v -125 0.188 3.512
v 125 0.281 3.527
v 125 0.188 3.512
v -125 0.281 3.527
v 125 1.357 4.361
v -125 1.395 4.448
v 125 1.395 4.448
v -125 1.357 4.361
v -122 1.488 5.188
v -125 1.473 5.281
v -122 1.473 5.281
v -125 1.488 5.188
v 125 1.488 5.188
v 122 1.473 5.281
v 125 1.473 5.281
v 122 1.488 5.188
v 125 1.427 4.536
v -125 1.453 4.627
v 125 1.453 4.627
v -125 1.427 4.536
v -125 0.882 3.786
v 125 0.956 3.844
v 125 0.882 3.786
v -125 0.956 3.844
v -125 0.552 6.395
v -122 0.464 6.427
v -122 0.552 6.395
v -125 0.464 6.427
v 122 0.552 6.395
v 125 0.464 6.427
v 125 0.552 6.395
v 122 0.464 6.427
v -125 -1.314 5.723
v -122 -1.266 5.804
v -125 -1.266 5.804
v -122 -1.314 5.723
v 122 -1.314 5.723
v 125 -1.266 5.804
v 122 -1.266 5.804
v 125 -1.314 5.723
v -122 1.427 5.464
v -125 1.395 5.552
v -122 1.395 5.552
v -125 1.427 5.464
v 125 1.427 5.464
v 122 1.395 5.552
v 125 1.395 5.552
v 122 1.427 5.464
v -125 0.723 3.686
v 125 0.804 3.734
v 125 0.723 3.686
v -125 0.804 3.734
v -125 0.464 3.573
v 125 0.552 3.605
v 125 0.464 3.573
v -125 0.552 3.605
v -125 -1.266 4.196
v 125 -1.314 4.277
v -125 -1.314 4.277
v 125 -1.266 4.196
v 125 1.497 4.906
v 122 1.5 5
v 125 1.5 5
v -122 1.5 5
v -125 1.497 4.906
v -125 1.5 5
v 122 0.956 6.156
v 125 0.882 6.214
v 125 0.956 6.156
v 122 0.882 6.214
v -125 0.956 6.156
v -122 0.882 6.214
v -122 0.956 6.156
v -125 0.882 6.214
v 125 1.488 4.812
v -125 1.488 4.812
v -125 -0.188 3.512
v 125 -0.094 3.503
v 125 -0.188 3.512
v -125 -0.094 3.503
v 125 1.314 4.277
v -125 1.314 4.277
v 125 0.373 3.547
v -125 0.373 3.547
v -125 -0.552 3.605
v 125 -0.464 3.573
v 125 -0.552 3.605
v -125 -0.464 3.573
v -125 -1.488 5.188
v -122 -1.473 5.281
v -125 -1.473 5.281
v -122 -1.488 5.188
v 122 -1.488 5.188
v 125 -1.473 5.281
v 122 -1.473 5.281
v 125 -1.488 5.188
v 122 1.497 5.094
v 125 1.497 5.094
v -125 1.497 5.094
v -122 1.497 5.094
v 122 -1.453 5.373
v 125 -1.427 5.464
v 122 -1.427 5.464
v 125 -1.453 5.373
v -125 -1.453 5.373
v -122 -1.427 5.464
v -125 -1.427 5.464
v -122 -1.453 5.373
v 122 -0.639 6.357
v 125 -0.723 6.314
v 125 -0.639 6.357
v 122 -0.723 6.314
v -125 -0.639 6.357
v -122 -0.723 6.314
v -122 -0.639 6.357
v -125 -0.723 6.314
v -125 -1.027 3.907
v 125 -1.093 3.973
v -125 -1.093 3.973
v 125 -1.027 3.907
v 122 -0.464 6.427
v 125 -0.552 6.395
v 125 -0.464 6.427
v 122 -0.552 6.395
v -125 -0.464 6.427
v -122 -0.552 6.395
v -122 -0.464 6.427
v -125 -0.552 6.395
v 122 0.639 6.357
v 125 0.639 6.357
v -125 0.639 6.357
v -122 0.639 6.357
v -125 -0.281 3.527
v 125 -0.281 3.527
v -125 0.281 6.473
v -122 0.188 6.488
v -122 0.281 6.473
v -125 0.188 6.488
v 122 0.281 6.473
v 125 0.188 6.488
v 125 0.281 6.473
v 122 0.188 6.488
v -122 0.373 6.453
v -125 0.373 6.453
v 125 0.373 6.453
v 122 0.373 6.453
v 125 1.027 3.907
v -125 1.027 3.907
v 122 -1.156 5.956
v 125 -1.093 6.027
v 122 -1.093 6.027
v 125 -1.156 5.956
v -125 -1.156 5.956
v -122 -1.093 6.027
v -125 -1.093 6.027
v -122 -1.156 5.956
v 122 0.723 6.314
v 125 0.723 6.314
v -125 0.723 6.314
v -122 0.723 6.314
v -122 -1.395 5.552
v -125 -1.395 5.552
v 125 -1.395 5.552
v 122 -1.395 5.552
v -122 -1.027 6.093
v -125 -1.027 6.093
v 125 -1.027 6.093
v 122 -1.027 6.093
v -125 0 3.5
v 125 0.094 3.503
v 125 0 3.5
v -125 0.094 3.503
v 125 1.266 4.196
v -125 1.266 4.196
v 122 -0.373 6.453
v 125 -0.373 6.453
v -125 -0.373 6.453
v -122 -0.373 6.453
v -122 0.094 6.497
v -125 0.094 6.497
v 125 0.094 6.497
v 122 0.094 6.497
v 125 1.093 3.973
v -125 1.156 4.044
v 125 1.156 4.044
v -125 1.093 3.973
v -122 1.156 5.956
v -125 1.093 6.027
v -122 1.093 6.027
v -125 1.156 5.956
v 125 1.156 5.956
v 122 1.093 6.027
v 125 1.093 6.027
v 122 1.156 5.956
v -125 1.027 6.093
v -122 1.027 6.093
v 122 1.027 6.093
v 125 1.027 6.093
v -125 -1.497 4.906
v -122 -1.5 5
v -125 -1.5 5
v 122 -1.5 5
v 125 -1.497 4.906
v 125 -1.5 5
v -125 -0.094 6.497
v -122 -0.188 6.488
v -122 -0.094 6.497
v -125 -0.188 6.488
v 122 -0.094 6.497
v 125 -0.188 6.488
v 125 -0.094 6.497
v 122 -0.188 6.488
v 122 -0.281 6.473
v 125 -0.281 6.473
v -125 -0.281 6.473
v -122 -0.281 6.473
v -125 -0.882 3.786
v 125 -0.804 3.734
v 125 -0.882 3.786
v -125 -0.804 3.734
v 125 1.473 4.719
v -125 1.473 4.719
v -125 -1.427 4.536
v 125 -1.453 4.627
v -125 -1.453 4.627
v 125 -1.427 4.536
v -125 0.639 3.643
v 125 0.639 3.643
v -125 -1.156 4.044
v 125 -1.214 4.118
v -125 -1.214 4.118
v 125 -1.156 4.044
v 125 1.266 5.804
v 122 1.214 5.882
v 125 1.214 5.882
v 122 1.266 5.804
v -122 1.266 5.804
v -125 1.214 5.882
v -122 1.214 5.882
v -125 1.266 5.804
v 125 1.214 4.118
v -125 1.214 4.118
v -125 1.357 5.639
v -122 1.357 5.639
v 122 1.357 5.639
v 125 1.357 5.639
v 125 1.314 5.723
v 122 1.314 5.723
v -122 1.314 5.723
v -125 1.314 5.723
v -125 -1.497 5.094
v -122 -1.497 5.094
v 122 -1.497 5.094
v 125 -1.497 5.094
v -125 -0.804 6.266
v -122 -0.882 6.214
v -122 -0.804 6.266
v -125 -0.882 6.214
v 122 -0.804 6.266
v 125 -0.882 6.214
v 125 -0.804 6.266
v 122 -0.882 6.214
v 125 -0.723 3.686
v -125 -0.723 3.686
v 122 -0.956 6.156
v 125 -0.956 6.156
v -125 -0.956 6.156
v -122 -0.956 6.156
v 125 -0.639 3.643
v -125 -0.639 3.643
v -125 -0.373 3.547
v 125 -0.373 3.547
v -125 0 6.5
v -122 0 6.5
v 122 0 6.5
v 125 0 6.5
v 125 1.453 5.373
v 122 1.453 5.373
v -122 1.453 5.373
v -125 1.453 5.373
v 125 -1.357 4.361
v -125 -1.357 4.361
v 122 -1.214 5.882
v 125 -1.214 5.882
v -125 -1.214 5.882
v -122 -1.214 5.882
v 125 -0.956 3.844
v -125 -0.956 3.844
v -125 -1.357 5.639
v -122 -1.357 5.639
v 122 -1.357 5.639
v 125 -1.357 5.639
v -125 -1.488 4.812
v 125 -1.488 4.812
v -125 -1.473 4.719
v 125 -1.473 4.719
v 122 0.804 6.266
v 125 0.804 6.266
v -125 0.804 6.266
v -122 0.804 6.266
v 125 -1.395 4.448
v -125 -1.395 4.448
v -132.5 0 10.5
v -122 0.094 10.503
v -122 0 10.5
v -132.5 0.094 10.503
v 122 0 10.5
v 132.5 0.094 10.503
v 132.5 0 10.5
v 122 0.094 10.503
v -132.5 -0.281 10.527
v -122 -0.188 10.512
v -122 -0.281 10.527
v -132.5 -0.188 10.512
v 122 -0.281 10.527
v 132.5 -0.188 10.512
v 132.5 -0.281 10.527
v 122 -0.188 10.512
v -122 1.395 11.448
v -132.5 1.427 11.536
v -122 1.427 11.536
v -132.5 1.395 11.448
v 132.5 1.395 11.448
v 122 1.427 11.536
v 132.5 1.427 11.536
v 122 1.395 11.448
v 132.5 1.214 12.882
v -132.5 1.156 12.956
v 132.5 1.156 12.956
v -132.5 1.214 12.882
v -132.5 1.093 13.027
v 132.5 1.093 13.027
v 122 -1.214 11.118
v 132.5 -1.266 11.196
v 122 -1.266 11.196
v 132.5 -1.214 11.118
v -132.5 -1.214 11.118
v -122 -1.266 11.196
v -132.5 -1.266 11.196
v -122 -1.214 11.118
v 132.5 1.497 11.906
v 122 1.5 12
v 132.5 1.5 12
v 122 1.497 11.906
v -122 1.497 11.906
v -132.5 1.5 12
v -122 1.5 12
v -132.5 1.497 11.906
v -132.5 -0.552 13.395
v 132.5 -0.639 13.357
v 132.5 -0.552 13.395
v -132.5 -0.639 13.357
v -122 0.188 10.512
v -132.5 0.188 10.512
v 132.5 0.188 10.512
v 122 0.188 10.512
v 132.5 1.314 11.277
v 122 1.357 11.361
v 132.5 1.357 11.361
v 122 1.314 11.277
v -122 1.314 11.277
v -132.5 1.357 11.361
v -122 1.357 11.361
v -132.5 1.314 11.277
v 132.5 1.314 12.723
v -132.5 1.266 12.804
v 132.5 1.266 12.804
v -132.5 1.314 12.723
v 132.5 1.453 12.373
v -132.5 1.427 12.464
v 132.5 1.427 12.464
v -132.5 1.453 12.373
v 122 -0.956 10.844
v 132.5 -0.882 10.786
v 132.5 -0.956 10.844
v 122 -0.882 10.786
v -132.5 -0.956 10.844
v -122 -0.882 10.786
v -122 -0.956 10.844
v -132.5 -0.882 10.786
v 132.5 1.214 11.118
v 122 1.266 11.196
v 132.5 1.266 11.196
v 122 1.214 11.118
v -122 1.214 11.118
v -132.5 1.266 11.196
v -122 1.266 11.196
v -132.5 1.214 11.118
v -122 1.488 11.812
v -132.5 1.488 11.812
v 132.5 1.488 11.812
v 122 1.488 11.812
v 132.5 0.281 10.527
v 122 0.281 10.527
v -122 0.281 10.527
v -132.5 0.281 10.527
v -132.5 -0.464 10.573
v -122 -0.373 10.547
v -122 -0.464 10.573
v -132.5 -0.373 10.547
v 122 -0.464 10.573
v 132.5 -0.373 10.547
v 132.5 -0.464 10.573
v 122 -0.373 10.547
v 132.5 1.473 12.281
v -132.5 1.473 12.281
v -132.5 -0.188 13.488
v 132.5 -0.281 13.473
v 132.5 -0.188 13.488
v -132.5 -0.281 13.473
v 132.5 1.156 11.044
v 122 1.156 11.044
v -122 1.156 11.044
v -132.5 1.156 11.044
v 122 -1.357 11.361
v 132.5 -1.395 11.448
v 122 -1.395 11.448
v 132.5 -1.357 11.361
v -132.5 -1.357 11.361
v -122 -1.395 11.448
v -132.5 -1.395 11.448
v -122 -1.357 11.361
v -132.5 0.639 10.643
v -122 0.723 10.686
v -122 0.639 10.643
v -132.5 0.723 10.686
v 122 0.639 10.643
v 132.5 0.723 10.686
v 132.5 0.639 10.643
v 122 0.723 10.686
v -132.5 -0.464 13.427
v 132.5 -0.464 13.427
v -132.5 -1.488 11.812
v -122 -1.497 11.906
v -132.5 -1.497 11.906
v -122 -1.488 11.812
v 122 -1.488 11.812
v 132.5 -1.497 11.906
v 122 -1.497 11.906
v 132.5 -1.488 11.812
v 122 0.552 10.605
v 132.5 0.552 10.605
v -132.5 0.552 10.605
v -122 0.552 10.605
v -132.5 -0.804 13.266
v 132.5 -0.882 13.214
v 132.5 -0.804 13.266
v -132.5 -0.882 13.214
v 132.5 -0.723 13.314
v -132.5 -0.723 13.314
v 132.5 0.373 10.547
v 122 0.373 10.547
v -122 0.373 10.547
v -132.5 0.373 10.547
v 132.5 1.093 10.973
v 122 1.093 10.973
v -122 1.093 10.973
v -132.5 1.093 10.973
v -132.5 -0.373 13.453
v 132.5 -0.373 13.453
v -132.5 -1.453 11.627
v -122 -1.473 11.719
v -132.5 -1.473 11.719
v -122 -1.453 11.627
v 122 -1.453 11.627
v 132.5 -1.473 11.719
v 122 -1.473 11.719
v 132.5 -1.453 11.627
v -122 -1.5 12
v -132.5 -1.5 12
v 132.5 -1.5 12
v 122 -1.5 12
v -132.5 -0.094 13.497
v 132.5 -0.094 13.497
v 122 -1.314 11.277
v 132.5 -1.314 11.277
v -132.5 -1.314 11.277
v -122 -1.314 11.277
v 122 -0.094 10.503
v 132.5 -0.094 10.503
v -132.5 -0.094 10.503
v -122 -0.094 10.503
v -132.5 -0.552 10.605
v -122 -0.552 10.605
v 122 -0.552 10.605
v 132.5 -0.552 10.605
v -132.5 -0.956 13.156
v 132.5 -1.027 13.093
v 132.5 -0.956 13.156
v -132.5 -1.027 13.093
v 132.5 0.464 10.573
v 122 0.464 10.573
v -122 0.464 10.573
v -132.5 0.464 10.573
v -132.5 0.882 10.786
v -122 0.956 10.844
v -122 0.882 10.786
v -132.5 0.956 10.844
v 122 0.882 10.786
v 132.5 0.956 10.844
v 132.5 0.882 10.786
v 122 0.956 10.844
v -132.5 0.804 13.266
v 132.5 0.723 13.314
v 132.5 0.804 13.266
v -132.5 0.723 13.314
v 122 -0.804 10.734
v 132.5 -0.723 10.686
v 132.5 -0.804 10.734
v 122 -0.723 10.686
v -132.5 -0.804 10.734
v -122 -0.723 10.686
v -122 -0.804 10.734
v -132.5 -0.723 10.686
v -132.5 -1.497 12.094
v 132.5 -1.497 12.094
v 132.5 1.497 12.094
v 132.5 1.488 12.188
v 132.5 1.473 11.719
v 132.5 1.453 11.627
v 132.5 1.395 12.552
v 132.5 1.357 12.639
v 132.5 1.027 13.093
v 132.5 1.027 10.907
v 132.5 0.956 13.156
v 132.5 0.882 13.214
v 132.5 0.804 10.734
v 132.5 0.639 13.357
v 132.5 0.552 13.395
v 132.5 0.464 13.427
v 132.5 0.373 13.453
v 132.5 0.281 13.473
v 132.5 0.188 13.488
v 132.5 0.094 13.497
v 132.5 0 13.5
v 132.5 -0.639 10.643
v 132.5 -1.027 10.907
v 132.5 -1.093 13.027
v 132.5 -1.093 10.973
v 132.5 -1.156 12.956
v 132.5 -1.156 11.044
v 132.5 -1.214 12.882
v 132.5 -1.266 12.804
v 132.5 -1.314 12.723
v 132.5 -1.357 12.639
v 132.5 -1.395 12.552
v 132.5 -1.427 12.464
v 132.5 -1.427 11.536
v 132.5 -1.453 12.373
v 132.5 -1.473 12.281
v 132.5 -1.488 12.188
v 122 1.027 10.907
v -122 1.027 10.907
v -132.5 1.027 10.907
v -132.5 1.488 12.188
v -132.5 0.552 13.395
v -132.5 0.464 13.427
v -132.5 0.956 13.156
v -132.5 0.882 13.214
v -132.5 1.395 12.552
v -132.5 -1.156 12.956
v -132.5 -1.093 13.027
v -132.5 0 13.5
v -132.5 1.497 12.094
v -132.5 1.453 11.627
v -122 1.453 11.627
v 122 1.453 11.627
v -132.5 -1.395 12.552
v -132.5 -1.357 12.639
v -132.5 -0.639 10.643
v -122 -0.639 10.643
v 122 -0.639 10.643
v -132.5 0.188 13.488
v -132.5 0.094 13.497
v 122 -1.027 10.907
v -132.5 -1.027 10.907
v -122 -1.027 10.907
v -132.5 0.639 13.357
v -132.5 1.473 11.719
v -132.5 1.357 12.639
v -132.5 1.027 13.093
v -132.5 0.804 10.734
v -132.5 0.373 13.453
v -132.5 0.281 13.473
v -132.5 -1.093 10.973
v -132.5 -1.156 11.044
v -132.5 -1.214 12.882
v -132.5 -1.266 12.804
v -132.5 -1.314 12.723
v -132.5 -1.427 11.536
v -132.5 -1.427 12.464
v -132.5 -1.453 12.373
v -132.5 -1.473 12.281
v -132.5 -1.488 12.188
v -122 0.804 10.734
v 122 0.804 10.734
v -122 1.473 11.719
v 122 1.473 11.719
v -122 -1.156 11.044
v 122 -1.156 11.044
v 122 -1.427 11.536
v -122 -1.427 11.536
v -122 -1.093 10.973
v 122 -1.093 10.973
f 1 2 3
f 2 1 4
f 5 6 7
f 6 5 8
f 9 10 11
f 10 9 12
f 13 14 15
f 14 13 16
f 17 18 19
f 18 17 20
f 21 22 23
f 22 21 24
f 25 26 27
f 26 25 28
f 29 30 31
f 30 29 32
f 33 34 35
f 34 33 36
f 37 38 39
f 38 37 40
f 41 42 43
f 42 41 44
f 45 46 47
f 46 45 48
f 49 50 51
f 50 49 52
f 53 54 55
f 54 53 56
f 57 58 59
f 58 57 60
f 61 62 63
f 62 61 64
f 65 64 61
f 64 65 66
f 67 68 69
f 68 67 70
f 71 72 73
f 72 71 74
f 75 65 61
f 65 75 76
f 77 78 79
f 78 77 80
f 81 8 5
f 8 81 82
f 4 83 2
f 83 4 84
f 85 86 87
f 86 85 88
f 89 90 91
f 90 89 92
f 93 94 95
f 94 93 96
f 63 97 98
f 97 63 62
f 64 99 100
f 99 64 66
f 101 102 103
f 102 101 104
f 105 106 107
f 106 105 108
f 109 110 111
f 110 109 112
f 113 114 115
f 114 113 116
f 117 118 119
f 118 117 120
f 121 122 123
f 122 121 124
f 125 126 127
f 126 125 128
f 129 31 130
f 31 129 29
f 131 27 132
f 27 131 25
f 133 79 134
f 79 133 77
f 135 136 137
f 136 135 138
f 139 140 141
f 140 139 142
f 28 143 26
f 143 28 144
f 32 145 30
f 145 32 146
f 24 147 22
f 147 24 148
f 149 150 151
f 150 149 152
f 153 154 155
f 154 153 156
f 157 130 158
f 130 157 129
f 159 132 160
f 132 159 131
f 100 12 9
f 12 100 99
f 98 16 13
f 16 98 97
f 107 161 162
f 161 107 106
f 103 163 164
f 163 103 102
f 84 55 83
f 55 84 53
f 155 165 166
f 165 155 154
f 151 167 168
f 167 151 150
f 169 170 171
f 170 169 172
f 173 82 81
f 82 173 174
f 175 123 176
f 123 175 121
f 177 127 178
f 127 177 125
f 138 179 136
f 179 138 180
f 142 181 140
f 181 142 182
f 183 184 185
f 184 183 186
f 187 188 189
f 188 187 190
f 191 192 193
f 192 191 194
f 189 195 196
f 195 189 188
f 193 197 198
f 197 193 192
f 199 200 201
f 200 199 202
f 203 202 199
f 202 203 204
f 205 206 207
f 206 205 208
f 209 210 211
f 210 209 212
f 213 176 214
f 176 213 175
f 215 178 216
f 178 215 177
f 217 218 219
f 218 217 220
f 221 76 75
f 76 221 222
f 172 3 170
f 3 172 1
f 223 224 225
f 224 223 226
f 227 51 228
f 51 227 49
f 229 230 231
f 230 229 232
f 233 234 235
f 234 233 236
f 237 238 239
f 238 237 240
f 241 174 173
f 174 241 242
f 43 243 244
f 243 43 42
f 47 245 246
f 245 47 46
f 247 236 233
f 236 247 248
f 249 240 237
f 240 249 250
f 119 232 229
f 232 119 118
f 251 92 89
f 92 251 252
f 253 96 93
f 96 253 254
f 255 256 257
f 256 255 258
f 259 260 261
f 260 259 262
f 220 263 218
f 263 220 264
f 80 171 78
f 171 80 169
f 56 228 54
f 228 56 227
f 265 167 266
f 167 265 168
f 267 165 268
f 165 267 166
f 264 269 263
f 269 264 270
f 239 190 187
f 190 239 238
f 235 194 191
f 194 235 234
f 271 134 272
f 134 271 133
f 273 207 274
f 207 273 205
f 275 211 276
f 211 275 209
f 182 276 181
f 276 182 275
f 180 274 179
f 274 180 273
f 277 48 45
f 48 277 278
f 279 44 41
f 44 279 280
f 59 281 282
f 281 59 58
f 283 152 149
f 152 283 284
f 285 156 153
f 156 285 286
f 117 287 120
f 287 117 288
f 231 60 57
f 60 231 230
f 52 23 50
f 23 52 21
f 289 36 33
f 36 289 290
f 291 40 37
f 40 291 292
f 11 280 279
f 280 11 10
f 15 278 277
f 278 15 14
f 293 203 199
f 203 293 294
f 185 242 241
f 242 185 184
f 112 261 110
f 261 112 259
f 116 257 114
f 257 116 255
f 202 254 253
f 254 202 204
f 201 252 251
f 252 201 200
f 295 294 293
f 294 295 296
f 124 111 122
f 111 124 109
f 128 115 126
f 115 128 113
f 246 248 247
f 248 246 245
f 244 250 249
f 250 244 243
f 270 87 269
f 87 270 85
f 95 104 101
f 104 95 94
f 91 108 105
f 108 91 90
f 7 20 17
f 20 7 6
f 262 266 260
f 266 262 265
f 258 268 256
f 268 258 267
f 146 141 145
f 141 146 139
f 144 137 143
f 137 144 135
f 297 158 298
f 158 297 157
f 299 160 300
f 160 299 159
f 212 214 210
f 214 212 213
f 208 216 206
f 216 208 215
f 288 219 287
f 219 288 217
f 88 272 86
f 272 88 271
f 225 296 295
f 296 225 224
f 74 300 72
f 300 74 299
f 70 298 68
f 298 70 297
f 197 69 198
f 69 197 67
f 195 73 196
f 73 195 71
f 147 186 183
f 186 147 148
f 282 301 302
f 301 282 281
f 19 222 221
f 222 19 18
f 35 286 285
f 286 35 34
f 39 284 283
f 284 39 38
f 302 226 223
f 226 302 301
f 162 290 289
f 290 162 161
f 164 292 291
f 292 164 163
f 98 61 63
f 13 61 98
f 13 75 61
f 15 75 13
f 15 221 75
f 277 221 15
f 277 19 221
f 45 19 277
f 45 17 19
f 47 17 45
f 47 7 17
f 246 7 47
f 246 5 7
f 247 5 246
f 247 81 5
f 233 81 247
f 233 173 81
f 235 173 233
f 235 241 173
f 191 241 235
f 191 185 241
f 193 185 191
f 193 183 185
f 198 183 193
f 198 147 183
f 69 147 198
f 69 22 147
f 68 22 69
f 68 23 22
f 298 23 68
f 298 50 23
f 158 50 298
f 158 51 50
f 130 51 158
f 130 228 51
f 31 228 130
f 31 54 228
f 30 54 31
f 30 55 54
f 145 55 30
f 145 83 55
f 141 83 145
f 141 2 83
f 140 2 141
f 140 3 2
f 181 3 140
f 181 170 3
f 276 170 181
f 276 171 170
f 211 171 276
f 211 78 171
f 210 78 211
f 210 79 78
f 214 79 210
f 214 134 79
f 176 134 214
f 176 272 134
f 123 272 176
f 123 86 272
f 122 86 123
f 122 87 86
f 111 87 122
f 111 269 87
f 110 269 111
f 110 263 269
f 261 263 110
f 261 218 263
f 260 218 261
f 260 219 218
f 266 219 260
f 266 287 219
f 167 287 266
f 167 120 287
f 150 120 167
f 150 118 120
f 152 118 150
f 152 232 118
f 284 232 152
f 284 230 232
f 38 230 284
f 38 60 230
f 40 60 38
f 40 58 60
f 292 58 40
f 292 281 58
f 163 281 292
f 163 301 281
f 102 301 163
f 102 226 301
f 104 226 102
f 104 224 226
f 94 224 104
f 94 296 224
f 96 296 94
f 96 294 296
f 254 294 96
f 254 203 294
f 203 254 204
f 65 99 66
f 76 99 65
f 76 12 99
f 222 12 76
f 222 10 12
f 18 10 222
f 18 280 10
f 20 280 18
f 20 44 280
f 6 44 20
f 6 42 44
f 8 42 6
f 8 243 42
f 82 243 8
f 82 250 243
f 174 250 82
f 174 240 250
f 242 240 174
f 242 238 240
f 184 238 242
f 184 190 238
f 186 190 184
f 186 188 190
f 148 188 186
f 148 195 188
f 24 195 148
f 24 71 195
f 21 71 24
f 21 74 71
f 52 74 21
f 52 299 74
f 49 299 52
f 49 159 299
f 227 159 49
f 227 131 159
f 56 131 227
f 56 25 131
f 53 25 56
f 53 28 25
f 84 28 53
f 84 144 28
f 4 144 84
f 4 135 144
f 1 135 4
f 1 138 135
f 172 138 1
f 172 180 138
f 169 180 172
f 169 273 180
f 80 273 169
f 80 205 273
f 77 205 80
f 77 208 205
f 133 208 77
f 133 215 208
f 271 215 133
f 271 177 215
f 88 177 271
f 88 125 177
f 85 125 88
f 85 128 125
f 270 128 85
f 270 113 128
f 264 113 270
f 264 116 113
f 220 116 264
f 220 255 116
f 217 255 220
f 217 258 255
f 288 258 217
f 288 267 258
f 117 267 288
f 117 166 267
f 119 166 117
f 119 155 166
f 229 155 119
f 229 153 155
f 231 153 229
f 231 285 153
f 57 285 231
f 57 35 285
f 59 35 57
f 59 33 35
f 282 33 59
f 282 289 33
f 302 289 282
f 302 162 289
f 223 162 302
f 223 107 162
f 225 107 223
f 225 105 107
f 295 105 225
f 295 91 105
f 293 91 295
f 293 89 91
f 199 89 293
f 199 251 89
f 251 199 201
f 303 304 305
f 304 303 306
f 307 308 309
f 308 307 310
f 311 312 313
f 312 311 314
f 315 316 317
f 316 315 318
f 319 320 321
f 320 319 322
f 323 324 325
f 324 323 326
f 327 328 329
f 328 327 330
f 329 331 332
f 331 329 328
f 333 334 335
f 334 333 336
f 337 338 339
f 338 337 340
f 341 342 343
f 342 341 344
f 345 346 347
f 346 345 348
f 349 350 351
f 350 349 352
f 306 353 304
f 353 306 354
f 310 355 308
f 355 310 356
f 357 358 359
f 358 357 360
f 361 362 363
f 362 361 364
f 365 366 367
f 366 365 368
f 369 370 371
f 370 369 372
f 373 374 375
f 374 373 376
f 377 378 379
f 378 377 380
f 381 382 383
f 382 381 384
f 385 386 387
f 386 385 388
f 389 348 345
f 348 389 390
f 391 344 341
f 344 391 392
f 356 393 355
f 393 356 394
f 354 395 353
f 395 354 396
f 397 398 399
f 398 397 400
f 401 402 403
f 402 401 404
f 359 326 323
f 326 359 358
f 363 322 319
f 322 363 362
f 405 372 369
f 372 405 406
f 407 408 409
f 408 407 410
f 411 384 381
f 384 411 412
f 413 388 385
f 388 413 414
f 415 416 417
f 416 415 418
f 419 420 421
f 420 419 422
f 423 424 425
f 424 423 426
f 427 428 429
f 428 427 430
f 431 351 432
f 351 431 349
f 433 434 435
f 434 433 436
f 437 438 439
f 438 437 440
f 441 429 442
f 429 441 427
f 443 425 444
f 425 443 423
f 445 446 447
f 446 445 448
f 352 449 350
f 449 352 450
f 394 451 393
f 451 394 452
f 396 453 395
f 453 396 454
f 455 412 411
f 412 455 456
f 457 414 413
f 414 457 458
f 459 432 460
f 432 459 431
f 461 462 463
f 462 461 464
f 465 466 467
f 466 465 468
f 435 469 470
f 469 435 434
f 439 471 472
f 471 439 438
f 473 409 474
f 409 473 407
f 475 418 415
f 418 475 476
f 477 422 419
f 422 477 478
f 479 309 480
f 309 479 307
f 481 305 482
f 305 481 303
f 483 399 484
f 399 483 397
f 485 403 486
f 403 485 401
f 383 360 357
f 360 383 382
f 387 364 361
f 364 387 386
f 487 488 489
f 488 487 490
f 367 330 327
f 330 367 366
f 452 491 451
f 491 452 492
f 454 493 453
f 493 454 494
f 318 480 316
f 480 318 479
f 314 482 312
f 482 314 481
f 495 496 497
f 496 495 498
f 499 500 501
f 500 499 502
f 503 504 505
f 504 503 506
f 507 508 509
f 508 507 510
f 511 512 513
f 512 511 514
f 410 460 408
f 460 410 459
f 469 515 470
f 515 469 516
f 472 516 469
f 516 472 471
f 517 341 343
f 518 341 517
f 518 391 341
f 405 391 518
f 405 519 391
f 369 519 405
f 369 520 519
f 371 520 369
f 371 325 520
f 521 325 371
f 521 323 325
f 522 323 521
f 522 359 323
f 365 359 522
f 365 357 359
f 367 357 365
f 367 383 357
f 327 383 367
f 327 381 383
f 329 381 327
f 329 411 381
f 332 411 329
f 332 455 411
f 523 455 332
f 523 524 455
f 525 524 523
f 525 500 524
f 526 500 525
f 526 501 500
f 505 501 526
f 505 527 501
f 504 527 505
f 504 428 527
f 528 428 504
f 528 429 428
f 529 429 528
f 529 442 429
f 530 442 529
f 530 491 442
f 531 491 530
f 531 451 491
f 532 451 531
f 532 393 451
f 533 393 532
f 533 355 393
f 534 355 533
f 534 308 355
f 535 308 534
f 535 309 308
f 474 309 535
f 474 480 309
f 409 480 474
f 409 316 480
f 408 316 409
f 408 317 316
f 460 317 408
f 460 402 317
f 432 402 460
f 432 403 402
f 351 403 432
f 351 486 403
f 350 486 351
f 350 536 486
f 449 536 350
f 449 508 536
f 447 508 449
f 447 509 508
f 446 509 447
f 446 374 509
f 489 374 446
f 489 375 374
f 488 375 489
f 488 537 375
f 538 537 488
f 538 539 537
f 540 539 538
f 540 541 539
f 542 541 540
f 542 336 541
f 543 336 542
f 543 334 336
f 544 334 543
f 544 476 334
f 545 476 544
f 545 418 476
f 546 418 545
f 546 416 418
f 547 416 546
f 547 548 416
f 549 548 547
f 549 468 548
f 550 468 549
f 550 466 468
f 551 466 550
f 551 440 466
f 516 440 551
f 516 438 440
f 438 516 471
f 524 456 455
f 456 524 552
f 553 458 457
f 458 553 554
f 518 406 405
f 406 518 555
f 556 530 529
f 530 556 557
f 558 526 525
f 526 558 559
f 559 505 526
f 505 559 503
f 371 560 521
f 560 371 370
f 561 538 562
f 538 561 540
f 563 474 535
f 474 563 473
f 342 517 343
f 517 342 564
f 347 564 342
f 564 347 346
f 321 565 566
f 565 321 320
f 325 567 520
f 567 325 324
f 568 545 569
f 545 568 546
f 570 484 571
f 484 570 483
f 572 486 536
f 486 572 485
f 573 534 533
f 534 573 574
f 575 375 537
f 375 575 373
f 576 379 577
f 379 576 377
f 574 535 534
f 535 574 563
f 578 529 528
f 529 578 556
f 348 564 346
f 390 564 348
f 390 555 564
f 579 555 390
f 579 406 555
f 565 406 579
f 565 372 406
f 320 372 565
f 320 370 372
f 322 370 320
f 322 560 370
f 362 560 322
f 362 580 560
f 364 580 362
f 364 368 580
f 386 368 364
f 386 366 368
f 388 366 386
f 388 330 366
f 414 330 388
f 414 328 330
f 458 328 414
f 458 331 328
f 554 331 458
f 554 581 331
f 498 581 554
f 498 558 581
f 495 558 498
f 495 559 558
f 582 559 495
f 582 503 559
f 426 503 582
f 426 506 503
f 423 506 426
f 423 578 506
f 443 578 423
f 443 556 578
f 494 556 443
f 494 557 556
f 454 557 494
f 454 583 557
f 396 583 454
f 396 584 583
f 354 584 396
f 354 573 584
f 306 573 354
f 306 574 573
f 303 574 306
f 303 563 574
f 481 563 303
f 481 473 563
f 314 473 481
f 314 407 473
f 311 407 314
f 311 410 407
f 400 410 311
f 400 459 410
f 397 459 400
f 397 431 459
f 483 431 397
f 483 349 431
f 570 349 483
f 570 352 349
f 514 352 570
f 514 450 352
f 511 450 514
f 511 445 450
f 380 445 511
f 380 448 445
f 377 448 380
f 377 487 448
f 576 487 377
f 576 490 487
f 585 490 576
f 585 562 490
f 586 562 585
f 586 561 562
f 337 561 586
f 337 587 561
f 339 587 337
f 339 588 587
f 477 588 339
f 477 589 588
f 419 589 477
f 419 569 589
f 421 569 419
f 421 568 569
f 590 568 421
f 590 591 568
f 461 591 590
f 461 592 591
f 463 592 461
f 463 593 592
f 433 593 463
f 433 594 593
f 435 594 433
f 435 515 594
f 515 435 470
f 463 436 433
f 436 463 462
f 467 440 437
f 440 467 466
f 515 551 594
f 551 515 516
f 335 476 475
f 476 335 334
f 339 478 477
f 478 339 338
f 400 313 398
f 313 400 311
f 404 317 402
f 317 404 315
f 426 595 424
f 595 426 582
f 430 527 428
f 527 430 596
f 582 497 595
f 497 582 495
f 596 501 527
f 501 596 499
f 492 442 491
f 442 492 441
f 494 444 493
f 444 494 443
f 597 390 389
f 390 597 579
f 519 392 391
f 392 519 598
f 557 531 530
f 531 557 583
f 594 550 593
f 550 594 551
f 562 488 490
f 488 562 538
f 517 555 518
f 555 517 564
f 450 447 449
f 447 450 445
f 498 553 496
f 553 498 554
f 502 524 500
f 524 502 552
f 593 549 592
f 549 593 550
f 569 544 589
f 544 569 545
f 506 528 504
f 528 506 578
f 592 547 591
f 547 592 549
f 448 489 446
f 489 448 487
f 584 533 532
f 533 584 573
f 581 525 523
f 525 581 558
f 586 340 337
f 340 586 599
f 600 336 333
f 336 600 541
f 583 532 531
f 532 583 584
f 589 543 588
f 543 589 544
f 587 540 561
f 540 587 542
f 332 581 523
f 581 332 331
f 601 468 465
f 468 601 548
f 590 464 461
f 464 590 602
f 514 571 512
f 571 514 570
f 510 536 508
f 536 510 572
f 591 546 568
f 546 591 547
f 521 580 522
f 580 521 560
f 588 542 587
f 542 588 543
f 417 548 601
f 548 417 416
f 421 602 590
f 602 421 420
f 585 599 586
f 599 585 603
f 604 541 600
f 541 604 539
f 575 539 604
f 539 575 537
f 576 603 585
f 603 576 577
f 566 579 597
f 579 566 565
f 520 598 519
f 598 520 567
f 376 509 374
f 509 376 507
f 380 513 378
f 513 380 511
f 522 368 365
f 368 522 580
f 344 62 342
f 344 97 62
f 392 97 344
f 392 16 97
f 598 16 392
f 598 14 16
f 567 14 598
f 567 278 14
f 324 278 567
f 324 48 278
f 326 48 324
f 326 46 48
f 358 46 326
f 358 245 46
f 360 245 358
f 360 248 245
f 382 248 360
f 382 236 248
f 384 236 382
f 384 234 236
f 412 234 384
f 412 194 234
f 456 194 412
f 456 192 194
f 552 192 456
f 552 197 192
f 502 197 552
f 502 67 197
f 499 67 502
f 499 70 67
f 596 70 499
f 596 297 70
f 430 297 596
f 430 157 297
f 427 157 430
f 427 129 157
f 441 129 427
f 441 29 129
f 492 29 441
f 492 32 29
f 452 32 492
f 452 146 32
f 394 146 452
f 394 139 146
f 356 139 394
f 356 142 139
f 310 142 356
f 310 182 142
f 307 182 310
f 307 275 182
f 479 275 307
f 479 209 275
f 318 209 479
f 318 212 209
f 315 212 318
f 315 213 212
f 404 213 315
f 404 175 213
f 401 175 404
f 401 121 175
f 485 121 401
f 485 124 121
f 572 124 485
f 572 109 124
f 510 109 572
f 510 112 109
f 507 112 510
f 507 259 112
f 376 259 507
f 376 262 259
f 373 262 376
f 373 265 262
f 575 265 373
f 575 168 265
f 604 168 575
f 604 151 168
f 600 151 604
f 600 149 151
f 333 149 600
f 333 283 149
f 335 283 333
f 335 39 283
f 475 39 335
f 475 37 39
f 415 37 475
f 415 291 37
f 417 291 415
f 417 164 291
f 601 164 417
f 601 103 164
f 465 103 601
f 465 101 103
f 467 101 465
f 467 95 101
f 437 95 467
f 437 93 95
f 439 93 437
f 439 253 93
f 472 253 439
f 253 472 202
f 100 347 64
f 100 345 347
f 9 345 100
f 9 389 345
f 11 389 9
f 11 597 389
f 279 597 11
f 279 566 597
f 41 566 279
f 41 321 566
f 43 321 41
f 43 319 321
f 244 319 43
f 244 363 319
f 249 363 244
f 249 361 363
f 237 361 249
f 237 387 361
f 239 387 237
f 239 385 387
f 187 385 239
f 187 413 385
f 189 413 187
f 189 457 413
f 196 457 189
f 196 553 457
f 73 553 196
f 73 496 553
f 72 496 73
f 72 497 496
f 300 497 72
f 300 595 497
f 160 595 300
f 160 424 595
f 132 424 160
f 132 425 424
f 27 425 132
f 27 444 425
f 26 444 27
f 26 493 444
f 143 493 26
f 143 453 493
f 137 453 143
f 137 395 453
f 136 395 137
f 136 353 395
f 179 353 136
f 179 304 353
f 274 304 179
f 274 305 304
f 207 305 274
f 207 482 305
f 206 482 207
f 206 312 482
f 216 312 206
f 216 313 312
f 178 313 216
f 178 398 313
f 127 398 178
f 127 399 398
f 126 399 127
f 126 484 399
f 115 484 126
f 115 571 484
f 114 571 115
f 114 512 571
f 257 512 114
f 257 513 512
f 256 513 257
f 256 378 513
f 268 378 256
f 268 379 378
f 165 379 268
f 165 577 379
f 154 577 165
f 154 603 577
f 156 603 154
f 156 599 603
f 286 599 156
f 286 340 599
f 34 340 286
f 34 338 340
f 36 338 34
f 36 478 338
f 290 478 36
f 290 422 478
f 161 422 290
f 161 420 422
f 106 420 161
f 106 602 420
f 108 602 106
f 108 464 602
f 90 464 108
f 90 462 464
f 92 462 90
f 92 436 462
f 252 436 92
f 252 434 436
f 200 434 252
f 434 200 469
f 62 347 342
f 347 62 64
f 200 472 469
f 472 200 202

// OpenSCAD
// file: ../common/hex_nut.scad
// 1.5^2 + y^2 = 3^2
// sqrt(3^2 - 1.5^2)
//       30
//    /   |
// 60  - 90
// cos(30) = x / 3
// x = 3 cos(30)
module hex(side_length=4) {
  points = [[0,0], [side_length, 0], [side_length / 2, side_length * cos(30)]];
  for (i=[0:1:5]) {
    rotate([0,0,i * 60]) polygon(points);
  }
}

module hex_nut(side_length=3, height=2) {
    linear_extrude(height=height) hex(side_length);

}
// file: ../common/smoothed_edge.scad
module smoothed_edge(radius=1.5, height=64) {
  difference() {
    difference() {
      color([1, 0, 0]) cylinder(h=height, r=radius);
      translate([-radius, 0, 0]) {
        color([0, 1, 0]) cube([radius * 2, radius, height]);
      }
    }

    translate([0, -radius, 0]) {
      color([0, 1, 0]) cube([radius, radius * 2, height]);
    }
  }
}
// file: ../common/smoothed_corner.scad
$fn=200;
module smoothed_corner(radius=5) {
  difference() {
    sphere(radius);
    union() {
      translate([0,-5,-5]) {
        cube([5,10,10]);
      }

      translate([-10,0,-5]) {
        cube([10, 10, 10]);
      }

      translate([-5,-5,0]) {
        cube([10,10,10]);
      }
    }

  }
}

smoothed_corner();
// file: ../common/nut.scad
// 1.5^2 + y^2 = 3^2
// sqrt(3^2 - 1.5^2)
//       30
//    /   |
// 60  - 90
// cos(30) = x / 3
// x = 3 cos(30)
module hex(side_length=3) {
  points = [[0,0], [side_length, 0], [side_length / 2, side_length * cos(30)]];
  for (i=[0:1:5]) {
    rotate([0,0,i * 60]) polygon(points);
  }
}

module hex_nut(side_length=3, height=2) {
    linear_extrude(height=height) hex(side_length);
}

module square_nut(side_length=5, height=2, _offset=0) {
    cube([5 + _offset,5,2]);
}
// file: ../common/screw.scad
$fn=100;

module screw(screw_head_radius=3, screw_head_height=3, threaded_radius=1.5, threaded_height=10) {
  // screw head
  cylinder(h=screw_head_height, r=screw_head_radius);

  translate([0, 0, screw_head_height]) {
    cylinder(h=threaded_height, r=threaded_radius);
  }
}

// m3x10

screw(screw_head_radius=3, screw_head_height=3, threaded_radius=1.5, threaded_height=10);
// file: ../cr_boxes/handle.scad
use <../common/smoothed_cube.scad>
use <../common/screw_with_nut.scad>

$fn = 100;
x = 40.2;
y = 25.4;
z = 5;
h = 127;

function get_x_handle() = x;
threaded_height = 8;


module top() {
  translate([-x / 2 ,-y / 2,-z / 2]) {
    smoothed_cube(x=x, y = y, z=z);
  }
}

module screw_holder(x=5, y=y, z=y, radius=5) {
  translate([-x / 2 ,-y / 2,-z / 2]) {
    smoothed_cube(
      x=x, y = y, z=z,
      radius_3=radius,
      radius_7=radius,
      edge_2_3_radius=radius,
      edge_3_7_radius=radius,
      edge_3_4_radius=radius,
      edge_6_7_radius=radius,
      edge_7_8_radius=radius
    );
  }
}

module handle(screws_only=false) {
  if (screws_only) {
    screws_for_handle();
  } else {

    cylinder(h=h, r=25.4 / 2, center=true);
    difference() {
      union() {

        translate([-x,0,-h / 2 - 8]) {
          screw_holder();
        }

        mirror([0,0,1])
          translate([-x,0,-h / 2 - 8]) {
            screw_holder();
          }

        translate([-x / 2,0, h / 2 - z / 2]) {
          top();
        }

        mirror([0,0,1])
          translate([-x / 2,0, h / 2 - z / 2]) {
            top();
          }
      }
      screws_for_handle();
    }
  }
}

module screws_for_handle() {
  screw_handle();
  mirror([0,0,1])
    screw_handle();
}

module screw_handle(screw_offset=5) {
  translate([-x + threaded_height - screw_offset,0,h / 2 + y /2  -2]) {
    color([1,0,0])
      rotate([0,-90,0])
      screw_with_nut(threaded_height=threaded_height);
  }
}

handle();
// file: ../cr_boxes/corner.scad
use <builder.scad>
use <row_fan.scad>

filter_y = filter_dim()[1];
fan_size = get_fan_size();
depth = get_depth();
corner_z = get_corner_z();



module corner() {
  difference() {

    // translate([-depth, -(filter_y * 2 + fan_size) / 2, 0]) {
    union() {

      cube([depth,filter_y * 2 + fan_size,corner_z], center=true);

      mirror([0,1,0])
      translate([(get_spacing_x() + get_fan_size()) / 2 + 0.5,0, -corner_z / 2 + depth / 2]) {
        cylinder_cube_screw(cyl=false, screw=false, cube_support=true);
      }

      // cylinder 2
      translate([get_spacing_x() - 0.5,0,0]) {
        translate([(get_spacing_x() + get_fan_size()) / 2 + 0.5,0, -corner_z / 2 + depth / 2]) {
          cylinder_cube_screw(cyl=true, screw=false, cube_support=false);
        }
      }

      // cylinder 3 top
      translate([22,0,40]) {
        rotate([0,90,0])
          mirror([0,1,0])
          translate([get_spacing_x() - 0.5,0,0]) {
            translate([(get_spacing_x() + get_fan_size()) / 2 + 0.5,0, -corner_z / 2 + depth / 2]) {
              cylinder_cube_screw(cyl=true, screw=false, cube_support=false);
            }
          }
      }

      // cube top
    }
    union() {


      // cylinder screw hole 1
      mirror([0,1,0])
        translate([(get_spacing_x() + get_fan_size()) / 2 + 0.5,0, -corner_z / 2 + depth / 2]) {
          cylinder_cube_screw(cyl=true, screw=true, cube_support=false);
        }

      // cylinder 2 screw hole
      translate([get_spacing_x() - 0.5,0,0]) {
        translate([(get_spacing_x() + get_fan_size()) / 2 + 0.5,0, -corner_z / 2 + depth / 2]) {
          cylinder_cube_screw(cyl=false, screw=true, cube_support=false);
        }
      }

      // cylinder 3 screw hole
      translate([22,0,40]) {
        rotate([0,90,0])
          mirror([0,1,0])
          translate([get_spacing_x() - 0.5,0,0]) {
            translate([(get_spacing_x() + get_fan_size()) / 2 + 0.5,0, -corner_z / 2 + depth / 2]) {
              cylinder_cube_screw(cyl=false, screw=true, cube_support=false);
            }
          }
      }

      // cylinder 4 screw hole and cylinder
      translate([22,0,23]) {
        rotate([0,90,0])
          translate([(get_spacing_x() + get_fan_size()) / 2 + 0.5,0, -corner_z / 2 + depth / 2]) {
            cylinder_cube_screw(cyl=true, screw=true, cube_support=false);
          }
      }
    }
  }
}

corner();
// file: ../common/fan.scad
use <hex_nut.scad>
$fn = 100;

// | 70
// |
// |
// |
// |        62.5
// -------------

module fan(
    radius,
    depth,
    screw_radius,
    multiplier = 70 - 7.5
) {
  _distance_to_middle_of_circle_x = radius == 60 ? 52.5 : multiplier / 70 * radius;
  _distance_to_middle_of_circle_y = radius == 60 ? 52.5 : multiplier / 70 * radius;

  linear_extrude(height=depth) circle(radius);
  // top right corner
  translate([_distance_to_middle_of_circle_x, _distance_to_middle_of_circle_y, 0]) {
    linear_extrude(height=depth) circle(screw_radius);
  }

  // bottom left corner
  translate([-_distance_to_middle_of_circle_x, -_distance_to_middle_of_circle_y, 0]) {
    linear_extrude(height=depth) circle(screw_radius);
  }

  // bottom right corner
  translate([_distance_to_middle_of_circle_x, -_distance_to_middle_of_circle_y, 0]) {
    linear_extrude(height=depth) circle(screw_radius);
  }

  // top left corner
  translate([-_distance_to_middle_of_circle_x, _distance_to_middle_of_circle_y, 0]) {
    linear_extrude(height=depth) circle(screw_radius);
  }

  // hex nut 1
  translate([_distance_to_middle_of_circle_x, _distance_to_middle_of_circle_y, depth - 2]) {
    hex_nut(4);
  }

  // hex nut 2
  translate([-_distance_to_middle_of_circle_x, -_distance_to_middle_of_circle_y, depth - 2]) {
    hex_nut(4);
  }

  // hex nut 3
  translate([_distance_to_middle_of_circle_x, -_distance_to_middle_of_circle_y, depth - 2]) {
    hex_nut(4);
  }

  // hex nut 4
  translate([-_distance_to_middle_of_circle_x, _distance_to_middle_of_circle_y, depth - 2]) {
    hex_nut(4);
  }
}

fan(radius=60, depth=5, distance_to_middle_of_circle_x=62/70 * 60, distance_to_middle_of_circle_y=62/70 * 60);
// file: foot.scad
use <../common/screw_with_nut.scad>
$fn = 100;

module cone(width=5, height=10, cone_top_radius=8) {
  rotate_extrude(convexity=10, angle=360)
    polygon([[0,0], [width,0], [cone_top_radius, height], [0,height]]);
}

module foot(screw=false, height=10, screw_head_height=5) {
  if (screw) {
    rotate([-90,0,0]) screw_with_nut(nut_type="hex", threaded_height=10, screw_head_height=screw_head_height);
  } else {
    rotate([-90,0,0]) difference() {
      cone(height=height);
      screw_with_nut(nut_type="hex", threaded_height=10, screw_head_height=screw_head_height);
    }
  }
}


foot();
// screw_with_nut(nut_type="none", threaded_height=10);
// file: ../common/usbc_female.scad
$fn=100;
function usbc_radius() = 3.25;
function usbc_middle_width() = 6.5;
function usbc_width() = 2 * usbc_radius() + usbc_middle_width();

module usbc_female() {
  // left half cylinder
  rotate([-90,0,0]) cylinder(h=20, r=usbc_radius());

  translate([0,0,-usbc_radius()]) {
    cube([7,20,usbc_middle_width()]);
  }

  // right half cylinder
  translate([7,0,0]) {
    rotate([-90,0,0]) cylinder(h=20, r=usbc_radius());
  }
}

usbc_female();
// file: ../common/screw_with_nut.scad
use <screw.scad>
use <nut.scad>

module screw_with_nut(
  hex_nut_height=2.5,
  screw_head_height=3,
  threaded_height=10,
  threaded_radius=1.5,
  screw_head_radius=3,
  hex_nut_side_length=3.6,
  square_nut_height=2,
  square_nut_side_length=5,
  nut_type="hex"
) {
  screw(screw_head_radius=screw_head_radius, screw_head_height=screw_head_height, threaded_radius=threaded_radius, threaded_height=threaded_height);

  if (nut_type == "hex") {
    translate([0,0, screw_head_height + threaded_height - hex_nut_height]) {
      hex_nut(side_length=hex_nut_side_length, height=hex_nut_height);
    }
  }

  else if (nut_type == "square"){
    rotate([0,0,-90])
    translate([
        -square_nut_side_length / 2,
        -square_nut_side_length / 2,
        screw_head_height + threaded_height - square_nut_height
    ]) {
      square_nut(
          side_length=square_nut_side_length,
          height=square_nut_height,
          _offset=5);
    }
  }

}

screw_with_nut(nut_type="square");
// file: ../cr_boxes/builder.scad
use <../common/smoothed_cube.scad>
use <../common/screw_with_nut.scad>
use <../common/fan.scad>
use <row_fan.scad>
use <corner.scad>
use <handle.scad>

filter_x = 635;
filter_z = 406;
filter_y = 25;
fan_z = 27;
num_fans = 4;
fan_size = 140;
depth = 10;

function filter_dim() = [filter_x, filter_y, filter_z];
function get_fan_size() = fan_size;
function get_num_fans() = num_fans;
function get_depth() = depth;
function get_spacing_x() = (filter_x / get_num_fans() - get_fan_size() )/ 2;
function get_spacing_y() = (filter_y / get_num_fans() - get_fan_size() )/ 2;
function get_fan_holder_x() = get_spacing_x() * 2 + get_fan_size();
function num_fans_to_fit(dim) = floor(dim / get_fan_holder_x());
function get_corner_z() = (filter_z + 2 * depth - 2 * (get_spacing_x() * 2 + get_fan_size())) / 2;;

module local_fan(z_offset="None", size=140, z=27, _color=[1,1,1], depth=10) {
  _z_offset = z_offset == "None" ? filter_z : z_offset;

  translate([0,0, filter_z]) {
    color(_color)
    cube([size,size,z]);

    // translate([0,0,50]) {
      // rotate([180,0,0])
      // screw_with_nut(threaded_height=8, hex_nut_side_length=4.5);
    // }
  }

  // main cylinder plus screws
  translate([size / 2, size / 2,_z_offset + fan_z  + 10]) {
    rotate([180,0,0])
    fan(radius=size / 2, depth=depth, screw_radius=2.5);
    // color(_color)
    // cylinder(h=depth, r=size / 2);
  }
}

module filter(filter_x=635, filter_y=25, filter_z=406) {
  cube([filter_x, filter_y, filter_z]);
}

module top_or_bottom_panel() {
  smoothed_cube(
      x=filter_x + 2 * depth,
      y=2 * filter_y + fan_size,
      z=depth,
      radius_1=depth,
      radius_4=depth,
      radius_5=depth,
      radius_8=depth,
      edge_4_1_radius=depth,
      edge_1_5_radius=depth,
      edge_8_5_radius=depth,
      edge_4_8_radius=depth
      );
}

module fans() {
  translate([get_spacing_x() + get_fan_size() / 2, 0,0]) {
    for (x=[0:1:get_num_fans() - 1]) {
      translate([(get_spacing_x() * 2 + get_fan_size()) * x,0,0]) {
        row_fan();
      }
    }
  }
}

module vertical_wall(with_handle=false, row_wall_index=0) {

  if (!with_handle) {
    translate([- depth / 2,0, get_fan_holder_x() / 2]) {
      rotate([0,-90,0]) {
        for (x=[0:1: num_fans_to_fit(filter_z) - 1]) {
          translate([(get_spacing_x() * 2 + get_fan_size()) * x,0,0]) {
            row_fan(fan_hole=false);
          }
        }
      }
    }
  } else {
    difference() {
      translate([- depth / 2,0, get_fan_holder_x() / 2]) {
        rotate([0,-90,0]) {
          translate([(get_spacing_x() * 2 + get_fan_size()) * row_wall_index,0,0]) {
            row_fan(fan_hole=false);
          }
        }
      }

      translate([-get_x_handle() - 15,0,get_spacing_x() * 2 + get_fan_size()]) {
        color([0,0,1])
          rotate([0,0,180])
          handle(screws_only=true);
      }
    }
  }
}

module filters() {
  filter();
  translate([0,fan_size + filter_y,0]) {
    filter();
  }
}


translate([0,0,filter_z + 5 + depth]) {
  fans();
}

// bottom fans
translate([0,0,depth / 2]) {
  mirror([0,0,1])
   fans();
}

translate([0,-filter_y -get_fan_size() / 2, depth]) {
  filters();
}

// echo("get_fan_holder_x()", get_fan_holder_x());
// echo("num_fans_to_fit(filter_z)", num_fans_to_fit(filter_z));

corner_z = get_corner_z();
echo("corner_z:", corner_z);

translate([-get_depth() / 2,0, corner_z / 2]) {
  // corner();
}

translate([-get_depth() / 2, 0, corner_z + 2 * (get_spacing_x() * 2 + get_fan_size())]) {
  corner();
}

translate([0,0,corner_z]) {
  vertical_wall();
}
// file: ../cr_boxes/row_fan.scad
use <builder.scad>
use <../smoothed_cube.scad>
use <../screw_with_nut.scad>

$fn = 100;

filter_x = filter_dim()[0];
filter_y = filter_dim()[1];
filter_z = filter_dim()[2];

width = filter_x / get_num_fans();
spacing_x = get_spacing_x();
spacing_y = filter_y;

module top(x, y, z, depth, corners_smoothed=false, x_edges_smoothed=false,
    x_spacing=10,
    y_spacing=10,
    edge_fan_top_smoothed=false,
    edge_fan_bottom_smoothed=false,
    edge_fan_left_smoothed=false,
    edge_fan_right_smoothed=false,
    edge_top_left_smoothed=false,
    edge_top_right_smoothed=false,
    edge_bottom_left_smoothed=false,
    edge_bottom_right_smoothed=false,
    top_left_corner_smoothed=false,
    top_right_corner_smoothed=false,
    bottom_left_corner_smoothed=false,
    bottom_right_corner_smoothed=false
) {
  corner_radius = corners_smoothed ? depth : 0;
  x_edge_radius = x_edges_smoothed ? depth : 0;

  top_edge_radius = edge_fan_top_smoothed ? depth : 0;
  bottom_edge_radius = edge_fan_bottom_smoothed ? depth : 0;
  left_edge_radius = edge_fan_left_smoothed ? depth : 0;
  right_edge_radius = edge_fan_right_smoothed ? depth : 0;

  top_left_corner_radius = top_left_corner_smoothed ? depth : 0;
  bottom_left_corner_radius = bottom_left_corner_smoothed ? depth : 0;
  top_right_corner_radius = top_right_corner_smoothed ? depth : 0;
  bottom_right_corner_radius = bottom_right_corner_smoothed ? depth : 0;


  difference() {
    smoothed_cube(
        x=x,
        y=y,
        z=z,
        radius_1=bottom_left_corner_radius,
        radius_4=bottom_right_corner_radius,
        radius_5=top_left_corner_radius,
        radius_8=top_right_corner_radius,
        edge_8_5_radius=top_edge_radius,
        edge_4_1_radius=bottom_edge_radius,
        edge_1_5_radius=left_edge_radius,
        edge_4_8_radius=right_edge_radius
        );
    translate([depth, depth,0]) {
      cube([x - 2 * depth , y - 2 * depth , z - depth]);
    }
  }
}

}

module some_fan(x_spacing="None", y_spacing="None", z_spacing="None") {
  _x_spacing = x_spacing == "None" ? spacing_x : x_spacing;
  _y_spacing = y_spacing == "None" ? spacing_y : y_spacing;
  _z_spacing = z_spacing == "None" ? -filter_z - 27 : z_spacing;

  translate([_x_spacing, _y_spacing,_z_spacing]) {
    local_fan();
  }
}



module cylinder_cube_screw(cyl=true, screw=true, cube_support=true, cylinder_offset=0) {
  // cylinder 1 (hole)
  if (cyl) {
    translate([-spacing_x - get_fan_size() / 2,get_fan_size() / 2,0]) {
      rotate([0,90,0])
        cylinder(h=spacing_x, r=get_depth() / 2 - 2 - cylinder_offset);
    }
  }

  if (cube_support) {
    // cube support
    translate([-spacing_x / 2 - get_fan_size() / 2 ,get_fan_size() / 2, -get_depth() / 2]) {
      color([0,1,0])
        cube([8,8,8], center=true);
    }
  }

  if (screw) {
    // screw 1
    translate([-spacing_x / 2 - get_fan_size() / 2,get_fan_size() / 2,-10]) {
      screw_with_nut(nut_type="None", threaded_height=8);
    }
  }
}

// one_side();

// rotate([0,0,180]) one_side();

module top_spaced(
    width,
    length="None",
    fan_hole=true,
    depth="None",
    trans_x="None",
    trans_y="None",
    z="None",
    x_spacing="None",
    y_spacing="None",
    z_spacing="None",
    edge_fan_top_smoothed=false,
    edge_fan_bottom_smoothed=false,
    edge_fan_left_smoothed=false,
    edge_fan_right_smoothed=false,
    edge_top_left_smoothed=false,
    edge_top_right_smoothed=false,
    edge_bottom_left_smoothed=false,
    edge_bottom_right_smoothed=false,
    top_left_corner_smoothed=false,
    top_right_corner_smoothed=false,
    bottom_left_corner_smoothed=false,
    bottom_right_corner_smoothed=false
) {
  // x_spacing: the space in the x direction between the edge of a fan and edge
  // the container
  _depth = depth == "None" ? get_depth() : depth;
  _trans_x = trans_x == "None" ? -width / 2 : trans_x;
  _trans_y = trans_y == "None" ? -length / 2 : trans_y;
  _length = length == "None" ? get_fan_size() + y_spacing * 2 : length;
  _z = z == "None" ? _depth : z;

  translate([_trans_x,_trans_y, -_depth / 2]) {
    difference() {
      color([1,0,0])
        top(x=width, y = _length, z=_z, depth=_depth,
            x_spacing=x_spacing,
            y_spacing=y_spacing,
            edge_fan_top_smoothed=edge_fan_top_smoothed,
            edge_fan_bottom_smoothed=edge_fan_bottom_smoothed,
            edge_fan_left_smoothed=edge_fan_left_smoothed,
            edge_fan_right_smoothed=edge_fan_right_smoothed,
            edge_top_left_smoothed=edge_top_left_smoothed,
            edge_top_right_smoothed=edge_top_right_smoothed,
            edge_bottom_left_smoothed=edge_bottom_left_smoothed,
            edge_bottom_right_smoothed=edge_bottom_right_smoothed,
            top_left_corner_smoothed=top_left_corner_smoothed,
            top_right_corner_smoothed=top_right_corner_smoothed,
            bottom_left_corner_smoothed=bottom_left_corner_smoothed,
            bottom_right_corner_smoothed=bottom_right_corner_smoothed
           );

      if (fan_hole) {
        some_fan(
          x_spacing=x_spacing,
          y_spacing=y_spacing,
          z_spacing=z_spacing
        );
      }
    }
  }
}

module row_fan(fan_hole=true) {
  rotate([180,0,0])
  difference() {
    union() {
      top_spaced(fan_hole=fan_hole, width=filter_x / get_num_fans());
      cylinder_cube_screw(cube_support=true, screw=false, cyl=false);

      translate([-spacing_x,-get_fan_size(),0]) {
        cylinder_cube_screw(cyl=true, screw=false, cube_support=false, cylinder_offset=0.5);
      }

      rotate([0,0,180])
        cylinder_cube_screw(cube_support=true, screw=false, cyl=false);

      rotate([0,0,180])
        translate([-spacing_x,-get_fan_size(),0]) {
          cylinder_cube_screw(cyl=true, screw=false, cube_support=false, cylinder_offset=0.5);
        }
    }

    union() {
      cylinder_cube_screw(cube_support=false, screw=true, cyl=true);

      translate([-spacing_x,-get_fan_size(),0]) {
        cylinder_cube_screw(cyl=false, screw=true, cube_support=false);
      }

      rotate([0,0,180])
        cylinder_cube_screw(cube_support=false, screw=true, cyl=true);

      rotate([0,0,180])
        translate([-spacing_x,-get_fan_size(),0]) {
          cylinder_cube_screw(cyl=false, screw=true, cube_support=false);
        }
    }
  }

  if (fan_hole) {
    finger_guard();
  }
}


module finger_guard() {
  translate([0,0,0]) {
    for (x=[get_fan_size() / 2:-12:0]) {
      difference() {
        cylinder(h=get_depth() / 2, r=x);
        cylinder(h=get_depth() / 2, r=x - 3);
      }
    }
  }

  translate([0,0,2.5]) {
    cube([get_fan_size(), 3, get_depth() / 2], center=true);
    rotate([0,0,90])
      cube([get_fan_size(), 3, get_depth() / 2], center=true);
  }
}

// top_spaced();
row_fan(fan_hole=false);
// file: ../nut.scad
// 1.5^2 + y^2 = 3^2
// sqrt(3^2 - 1.5^2)
//       30
//    /   |
// 60  - 90
// cos(30) = x / 3
// x = 3 cos(30)
module hex(side_length=3) {
  points = [[0,0], [side_length, 0], [side_length / 2, side_length * cos(30)]];
  for (i=[0:1:5]) {
    rotate([0,0,i * 60]) polygon(points);
  }
}

module hex_nut(side_length=3, height=2) {
    linear_extrude(height=height) hex(side_length);
}

module square_nut(side_length=5, height=2) {
    cube([5,5,2]);
}
// file: ../screw.scad
$fn=100;

module screw(screw_head_radius=3, screw_head_height=3, threaded_radius=1.5, threaded_height=10) {
  // screw head
  cylinder(h=screw_head_height, r=screw_head_radius);

  translate([0, 0, screw_head_height]) {
    cylinder(h=threaded_height, r=threaded_radius);
  }
}

// m3x10

screw(screw_head_radius=3, screw_head_height=3, threaded_radius=1.5, threaded_height=10);
// file: ../smoothed_edge.scad
module smoothed_edge(radius=1.5, height=64) {
  difference() {
    difference() {
      color([1, 0, 0]) cylinder(h=height, r=radius);
      translate([-radius, 0, 0]) {
        color([0, 1, 0]) cube([radius * 2, radius, height]);
      }
    }

    translate([0, -radius, 0]) {
      color([0, 1, 0]) cube([radius, radius * 2, height]);
    }
  }
}
// file: ../smoothed_corner.scad
$fn=200;
module smoothed_corner(radius=5) {
  difference() {
    sphere(radius);
    union() {
      translate([0,-5,-5]) {
        cube([5,10,10]);
      }

      translate([-10,0,-5]) {
        cube([10, 10, 10]);
      }

      translate([-5,-5,0]) {
        cube([10,10,10]);
      }
    }

  }
}

smoothed_corner();
// file: ../cone.scad
module cone(width=5, height=10, cone_top_radius=8) {
  rotate_extrude(convexity=10, angle=360)
    polygon([[0,0], [width,0], [cone_top_radius, height], [0,height]]);
}
// file: ../screw_with_nut.scad
use <screw.scad>
use <nut.scad>

module screw_with_nut(hex_nut_height=2, screw_head_height=3, threaded_height=10, threaded_radius=1.5, screw_head_radius=3, hex_nut_side_length=3, square_nut_height=2, square_nut_side_length=5, nut_type="hex") {
  screw(screw_head_radius=screw_head_radius, screw_head_height=screw_head_height, threaded_radius=threaded_radius, threaded_height=threaded_height);

  if (nut_type == "hex") {
    translate([0,0, screw_head_height + threaded_height - hex_nut_height]) {
      hex_nut(side_length=hex_nut_side_length, height=hex_nut_height);
    }
  } else {
    translate([
        -square_nut_side_length / 2,
        -square_nut_side_length / 2,
        screw_head_height + threaded_height - square_nut_height
    ]) {
      square_nut(side_length=square_nut_side_length, height=square_nut_height);
    }
  }
}

screw_with_nut(nut_type="square");
// file: ../smoothed_cube.scad
use <smoothed_corner.scad>
use <smoothed_edge.scad>
$fn=100;
//    5   8
// 1   4
//    6   7
// 2   3
module smoothed_cube(
  radius_1=0,
  radius_2=0,
  radius_3=0,
  radius_4=0,
  radius_5=0,
  radius_6=0,
  radius_7=0,
  radius_8=0,
  x=300,
  y=200,
  z=100,
  edge_1_2_radius=0,
  edge_2_3_radius=0,
  edge_3_4_radius=0,
  edge_4_1_radius=0,
  edge_1_5_radius=0,
  edge_5_6_radius=0,
  edge_6_7_radius=0,
  edge_7_8_radius=0,
  edge_8_4_radius=0,
  edge_2_6_radius=0,
  edge_3_7_radius=0,
  edge_4_8_radius=0,
) {

  difference() {
    cube([x, y, z]);
    union() {
      // edge between vertices 1 and 2
      color([1,0,0]) cube([edge_1_2_radius, edge_1_2_radius,z]);
      // edge between vertices 2 and 3
      color([1,0,0]) cube([x, edge_1_2_radius, edge_1_2_radius]);

      // edge between vertices 3 and 4
      translate([x - edge_3_4_radius, 0, 0]) {
        color([1,0,0]) cube([edge_3_4_radius, edge_3_4_radius,z]);
      }

      // edge between vertices 4 and 1
      translate([0,0,z-edge_4_1_radius]) {
        color([1,0,0]) cube([x, edge_4_1_radius, edge_4_1_radius]);
      }

      // edge from vertex 1 to 5
      translate([0, radius_1,z - edge_1_5_radius]) {
        color([1,0,0]) cube([edge_1_5_radius,y - radius_5,edge_1_5_radius]);
      }

      // edge from vertex 2 to 6
      translate([0, radius_1,0]) {
        color([1,0,0]) cube([edge_1_5_radius,y - radius_5,edge_1_5_radius]);
      }
    }
  }

  // smooth edge from vertex 1 to 2
  translate([edge_1_2_radius, edge_1_2_radius, +radius_2]) {
    smoothed_edge(radius=edge_1_2_radius, height=z - radius_2 - radius_1);
  }

  // smooth corner vertex 2
  translate([edge_1_2_radius, edge_1_2_radius, +radius_2]) {
    smoothed_corner(radius=radius_2);
  }

  // smooth corner vertex 1
  translate([edge_1_2_radius, edge_1_2_radius, z - radius_1]) {
    rotate([-90,0,0]) smoothed_corner(radius=radius_1);
  }

  // smooth edge from vertex 2 to 3
  translate([radius_2,edge_2_3_radius,edge_2_3_radius]) {
    rotate([90,0,0])
      rotate([0,90,0])
      smoothed_edge(radius=edge_2_3_radius, height=x - radius_3 - radius_2);
  }

  // smooth corner vertex 3
  translate([x - radius_3, radius_3, radius_3]) {
    rotate([-90,0,0])
    rotate([0,0,-180]) smoothed_corner(radius=radius_3);
  }

  // smooth edge from vertex 3 to 4
  translate([x - edge_3_4_radius, edge_3_4_radius, +radius_3]) {
    rotate([0,0,90])
    smoothed_edge(radius=edge_3_4_radius, height=z - radius_4 - radius_3);
  }

  // smooth corner vertex 4
  translate([x-radius_4, radius_4, z - radius_4]) {
    rotate([0,180,0]) smoothed_corner(radius=radius_4);
  }

  // smooth edge from vertex 4 to 1
  translate([radius_1,edge_4_1_radius,z - edge_4_1_radius]) {
    rotate([0,0,0])
      rotate([0,90,0])
      smoothed_edge(radius=edge_4_1_radius, height=x - radius_4 - radius_1);
  }

  // smooth edge from vertex 1 to 5
  translate([edge_1_5_radius, radius_1, z - edge_1_5_radius]) {
    rotate([-90,0,0])
      smoothed_edge(radius=edge_1_5_radius, height=y - radius_1 - radius_5);
  }

  // smooth corner vertex 5
  translate([edge_1_5_radius, y - radius_5, z - radius_5]) {
    rotate([180,0,0]) smoothed_corner(radius=radius_1);
  }

  // smooth edge from vertex 2 to 6
  translate([edge_2_6_radius, radius_2, edge_2_6_radius]) {
    rotate([0,-90,0])
      rotate([-90,0,0])
      smoothed_edge(radius=edge_2_6_radius, height=y - radius_1 - radius_5);
  }


  // smooth corner vertex 6
  translate([radius_6, y - radius_6,  radius_6 ]) {
    rotate([90,0,0])
    smoothed_corner(radius=radius_6);
  }
  // translate([edge_1_2_radius, edge_1_2_radius, +radius_2]) {
    // smoothed_edge(radius=edge_1_2_radius, height=z - radius_2 - radius_1);
  // }

}


edge_1_2_radius = 5;
edge_2_3_radius = 5;
edge_3_4_radius = 5;
edge_4_1_radius = 5;
edge_1_5_radius = 5;
edge_2_6_radius = 5;
radius_1 = 5;
radius_2 = 5;
radius_3 = 5;
radius_4 = 5;
radius_5 = 5;
radius_6 = 5;
x=300;
y = 200;
z=100;

// smoothed_cube(edge_1_2_radius=5, radius_2=5, radius_1=5, edge_2_3_radius=5);
smoothed_cube(edge_1_2_radius=5, radius_2=5, radius_1=5, edge_2_3_radius=5, edge_3_4_radius=5, radius_3=5, radius_4=5, edge_4_1_radius=5, radius_5=5, edge_1_5_radius=5, edge_2_6_radius=5, radius_6=5);
// file: methods.scad
use <../cr_boxes/three_by_three/fan_container.scad>

// SmartAir S filter dimensions
// in millimeters
function get_filter_dim() = [10.5 * 25.4, 10.5 * 25.4, 96 - get_grid_z()];

// Number of rows and number columns
function get_num_fan_enclosure_dim() = [2,2];

function get_wall_depth() = 5;

function get_fan_enclosure_width() = get_width(
    get_filter_dim()[0],
    get_wall_depth(),
    get_num_fan_enclosure_dim()[0]
);

function get_fan_enclosure_length() = get_length(
    get_filter_dim()[1],
    get_wall_depth(),
    get_num_fan_enclosure_dim()[1]
);

// How tall the walls need to be. The higher the value, the more separation
// there is between the fans and the filter.
function get_grid_z() = 15;

function get_fan_diameter() = 120;

function get_fan_to_wall_spacing_dim() = [
  get_x_spacing(get_fan_enclosure_width(), get_fan_diameter()),
  get_y_spacing(get_fan_enclosure_width(), get_fan_diameter()),
  get_grid_z() + 25
];
function z_outerwall_offset() = 27 * 1.25;
// main file
use <filter_louvers_container.scad>

// height_offset should be one-off from the height offset in filter_louvers_container
louver(radius=1.5, height_offset=11);
